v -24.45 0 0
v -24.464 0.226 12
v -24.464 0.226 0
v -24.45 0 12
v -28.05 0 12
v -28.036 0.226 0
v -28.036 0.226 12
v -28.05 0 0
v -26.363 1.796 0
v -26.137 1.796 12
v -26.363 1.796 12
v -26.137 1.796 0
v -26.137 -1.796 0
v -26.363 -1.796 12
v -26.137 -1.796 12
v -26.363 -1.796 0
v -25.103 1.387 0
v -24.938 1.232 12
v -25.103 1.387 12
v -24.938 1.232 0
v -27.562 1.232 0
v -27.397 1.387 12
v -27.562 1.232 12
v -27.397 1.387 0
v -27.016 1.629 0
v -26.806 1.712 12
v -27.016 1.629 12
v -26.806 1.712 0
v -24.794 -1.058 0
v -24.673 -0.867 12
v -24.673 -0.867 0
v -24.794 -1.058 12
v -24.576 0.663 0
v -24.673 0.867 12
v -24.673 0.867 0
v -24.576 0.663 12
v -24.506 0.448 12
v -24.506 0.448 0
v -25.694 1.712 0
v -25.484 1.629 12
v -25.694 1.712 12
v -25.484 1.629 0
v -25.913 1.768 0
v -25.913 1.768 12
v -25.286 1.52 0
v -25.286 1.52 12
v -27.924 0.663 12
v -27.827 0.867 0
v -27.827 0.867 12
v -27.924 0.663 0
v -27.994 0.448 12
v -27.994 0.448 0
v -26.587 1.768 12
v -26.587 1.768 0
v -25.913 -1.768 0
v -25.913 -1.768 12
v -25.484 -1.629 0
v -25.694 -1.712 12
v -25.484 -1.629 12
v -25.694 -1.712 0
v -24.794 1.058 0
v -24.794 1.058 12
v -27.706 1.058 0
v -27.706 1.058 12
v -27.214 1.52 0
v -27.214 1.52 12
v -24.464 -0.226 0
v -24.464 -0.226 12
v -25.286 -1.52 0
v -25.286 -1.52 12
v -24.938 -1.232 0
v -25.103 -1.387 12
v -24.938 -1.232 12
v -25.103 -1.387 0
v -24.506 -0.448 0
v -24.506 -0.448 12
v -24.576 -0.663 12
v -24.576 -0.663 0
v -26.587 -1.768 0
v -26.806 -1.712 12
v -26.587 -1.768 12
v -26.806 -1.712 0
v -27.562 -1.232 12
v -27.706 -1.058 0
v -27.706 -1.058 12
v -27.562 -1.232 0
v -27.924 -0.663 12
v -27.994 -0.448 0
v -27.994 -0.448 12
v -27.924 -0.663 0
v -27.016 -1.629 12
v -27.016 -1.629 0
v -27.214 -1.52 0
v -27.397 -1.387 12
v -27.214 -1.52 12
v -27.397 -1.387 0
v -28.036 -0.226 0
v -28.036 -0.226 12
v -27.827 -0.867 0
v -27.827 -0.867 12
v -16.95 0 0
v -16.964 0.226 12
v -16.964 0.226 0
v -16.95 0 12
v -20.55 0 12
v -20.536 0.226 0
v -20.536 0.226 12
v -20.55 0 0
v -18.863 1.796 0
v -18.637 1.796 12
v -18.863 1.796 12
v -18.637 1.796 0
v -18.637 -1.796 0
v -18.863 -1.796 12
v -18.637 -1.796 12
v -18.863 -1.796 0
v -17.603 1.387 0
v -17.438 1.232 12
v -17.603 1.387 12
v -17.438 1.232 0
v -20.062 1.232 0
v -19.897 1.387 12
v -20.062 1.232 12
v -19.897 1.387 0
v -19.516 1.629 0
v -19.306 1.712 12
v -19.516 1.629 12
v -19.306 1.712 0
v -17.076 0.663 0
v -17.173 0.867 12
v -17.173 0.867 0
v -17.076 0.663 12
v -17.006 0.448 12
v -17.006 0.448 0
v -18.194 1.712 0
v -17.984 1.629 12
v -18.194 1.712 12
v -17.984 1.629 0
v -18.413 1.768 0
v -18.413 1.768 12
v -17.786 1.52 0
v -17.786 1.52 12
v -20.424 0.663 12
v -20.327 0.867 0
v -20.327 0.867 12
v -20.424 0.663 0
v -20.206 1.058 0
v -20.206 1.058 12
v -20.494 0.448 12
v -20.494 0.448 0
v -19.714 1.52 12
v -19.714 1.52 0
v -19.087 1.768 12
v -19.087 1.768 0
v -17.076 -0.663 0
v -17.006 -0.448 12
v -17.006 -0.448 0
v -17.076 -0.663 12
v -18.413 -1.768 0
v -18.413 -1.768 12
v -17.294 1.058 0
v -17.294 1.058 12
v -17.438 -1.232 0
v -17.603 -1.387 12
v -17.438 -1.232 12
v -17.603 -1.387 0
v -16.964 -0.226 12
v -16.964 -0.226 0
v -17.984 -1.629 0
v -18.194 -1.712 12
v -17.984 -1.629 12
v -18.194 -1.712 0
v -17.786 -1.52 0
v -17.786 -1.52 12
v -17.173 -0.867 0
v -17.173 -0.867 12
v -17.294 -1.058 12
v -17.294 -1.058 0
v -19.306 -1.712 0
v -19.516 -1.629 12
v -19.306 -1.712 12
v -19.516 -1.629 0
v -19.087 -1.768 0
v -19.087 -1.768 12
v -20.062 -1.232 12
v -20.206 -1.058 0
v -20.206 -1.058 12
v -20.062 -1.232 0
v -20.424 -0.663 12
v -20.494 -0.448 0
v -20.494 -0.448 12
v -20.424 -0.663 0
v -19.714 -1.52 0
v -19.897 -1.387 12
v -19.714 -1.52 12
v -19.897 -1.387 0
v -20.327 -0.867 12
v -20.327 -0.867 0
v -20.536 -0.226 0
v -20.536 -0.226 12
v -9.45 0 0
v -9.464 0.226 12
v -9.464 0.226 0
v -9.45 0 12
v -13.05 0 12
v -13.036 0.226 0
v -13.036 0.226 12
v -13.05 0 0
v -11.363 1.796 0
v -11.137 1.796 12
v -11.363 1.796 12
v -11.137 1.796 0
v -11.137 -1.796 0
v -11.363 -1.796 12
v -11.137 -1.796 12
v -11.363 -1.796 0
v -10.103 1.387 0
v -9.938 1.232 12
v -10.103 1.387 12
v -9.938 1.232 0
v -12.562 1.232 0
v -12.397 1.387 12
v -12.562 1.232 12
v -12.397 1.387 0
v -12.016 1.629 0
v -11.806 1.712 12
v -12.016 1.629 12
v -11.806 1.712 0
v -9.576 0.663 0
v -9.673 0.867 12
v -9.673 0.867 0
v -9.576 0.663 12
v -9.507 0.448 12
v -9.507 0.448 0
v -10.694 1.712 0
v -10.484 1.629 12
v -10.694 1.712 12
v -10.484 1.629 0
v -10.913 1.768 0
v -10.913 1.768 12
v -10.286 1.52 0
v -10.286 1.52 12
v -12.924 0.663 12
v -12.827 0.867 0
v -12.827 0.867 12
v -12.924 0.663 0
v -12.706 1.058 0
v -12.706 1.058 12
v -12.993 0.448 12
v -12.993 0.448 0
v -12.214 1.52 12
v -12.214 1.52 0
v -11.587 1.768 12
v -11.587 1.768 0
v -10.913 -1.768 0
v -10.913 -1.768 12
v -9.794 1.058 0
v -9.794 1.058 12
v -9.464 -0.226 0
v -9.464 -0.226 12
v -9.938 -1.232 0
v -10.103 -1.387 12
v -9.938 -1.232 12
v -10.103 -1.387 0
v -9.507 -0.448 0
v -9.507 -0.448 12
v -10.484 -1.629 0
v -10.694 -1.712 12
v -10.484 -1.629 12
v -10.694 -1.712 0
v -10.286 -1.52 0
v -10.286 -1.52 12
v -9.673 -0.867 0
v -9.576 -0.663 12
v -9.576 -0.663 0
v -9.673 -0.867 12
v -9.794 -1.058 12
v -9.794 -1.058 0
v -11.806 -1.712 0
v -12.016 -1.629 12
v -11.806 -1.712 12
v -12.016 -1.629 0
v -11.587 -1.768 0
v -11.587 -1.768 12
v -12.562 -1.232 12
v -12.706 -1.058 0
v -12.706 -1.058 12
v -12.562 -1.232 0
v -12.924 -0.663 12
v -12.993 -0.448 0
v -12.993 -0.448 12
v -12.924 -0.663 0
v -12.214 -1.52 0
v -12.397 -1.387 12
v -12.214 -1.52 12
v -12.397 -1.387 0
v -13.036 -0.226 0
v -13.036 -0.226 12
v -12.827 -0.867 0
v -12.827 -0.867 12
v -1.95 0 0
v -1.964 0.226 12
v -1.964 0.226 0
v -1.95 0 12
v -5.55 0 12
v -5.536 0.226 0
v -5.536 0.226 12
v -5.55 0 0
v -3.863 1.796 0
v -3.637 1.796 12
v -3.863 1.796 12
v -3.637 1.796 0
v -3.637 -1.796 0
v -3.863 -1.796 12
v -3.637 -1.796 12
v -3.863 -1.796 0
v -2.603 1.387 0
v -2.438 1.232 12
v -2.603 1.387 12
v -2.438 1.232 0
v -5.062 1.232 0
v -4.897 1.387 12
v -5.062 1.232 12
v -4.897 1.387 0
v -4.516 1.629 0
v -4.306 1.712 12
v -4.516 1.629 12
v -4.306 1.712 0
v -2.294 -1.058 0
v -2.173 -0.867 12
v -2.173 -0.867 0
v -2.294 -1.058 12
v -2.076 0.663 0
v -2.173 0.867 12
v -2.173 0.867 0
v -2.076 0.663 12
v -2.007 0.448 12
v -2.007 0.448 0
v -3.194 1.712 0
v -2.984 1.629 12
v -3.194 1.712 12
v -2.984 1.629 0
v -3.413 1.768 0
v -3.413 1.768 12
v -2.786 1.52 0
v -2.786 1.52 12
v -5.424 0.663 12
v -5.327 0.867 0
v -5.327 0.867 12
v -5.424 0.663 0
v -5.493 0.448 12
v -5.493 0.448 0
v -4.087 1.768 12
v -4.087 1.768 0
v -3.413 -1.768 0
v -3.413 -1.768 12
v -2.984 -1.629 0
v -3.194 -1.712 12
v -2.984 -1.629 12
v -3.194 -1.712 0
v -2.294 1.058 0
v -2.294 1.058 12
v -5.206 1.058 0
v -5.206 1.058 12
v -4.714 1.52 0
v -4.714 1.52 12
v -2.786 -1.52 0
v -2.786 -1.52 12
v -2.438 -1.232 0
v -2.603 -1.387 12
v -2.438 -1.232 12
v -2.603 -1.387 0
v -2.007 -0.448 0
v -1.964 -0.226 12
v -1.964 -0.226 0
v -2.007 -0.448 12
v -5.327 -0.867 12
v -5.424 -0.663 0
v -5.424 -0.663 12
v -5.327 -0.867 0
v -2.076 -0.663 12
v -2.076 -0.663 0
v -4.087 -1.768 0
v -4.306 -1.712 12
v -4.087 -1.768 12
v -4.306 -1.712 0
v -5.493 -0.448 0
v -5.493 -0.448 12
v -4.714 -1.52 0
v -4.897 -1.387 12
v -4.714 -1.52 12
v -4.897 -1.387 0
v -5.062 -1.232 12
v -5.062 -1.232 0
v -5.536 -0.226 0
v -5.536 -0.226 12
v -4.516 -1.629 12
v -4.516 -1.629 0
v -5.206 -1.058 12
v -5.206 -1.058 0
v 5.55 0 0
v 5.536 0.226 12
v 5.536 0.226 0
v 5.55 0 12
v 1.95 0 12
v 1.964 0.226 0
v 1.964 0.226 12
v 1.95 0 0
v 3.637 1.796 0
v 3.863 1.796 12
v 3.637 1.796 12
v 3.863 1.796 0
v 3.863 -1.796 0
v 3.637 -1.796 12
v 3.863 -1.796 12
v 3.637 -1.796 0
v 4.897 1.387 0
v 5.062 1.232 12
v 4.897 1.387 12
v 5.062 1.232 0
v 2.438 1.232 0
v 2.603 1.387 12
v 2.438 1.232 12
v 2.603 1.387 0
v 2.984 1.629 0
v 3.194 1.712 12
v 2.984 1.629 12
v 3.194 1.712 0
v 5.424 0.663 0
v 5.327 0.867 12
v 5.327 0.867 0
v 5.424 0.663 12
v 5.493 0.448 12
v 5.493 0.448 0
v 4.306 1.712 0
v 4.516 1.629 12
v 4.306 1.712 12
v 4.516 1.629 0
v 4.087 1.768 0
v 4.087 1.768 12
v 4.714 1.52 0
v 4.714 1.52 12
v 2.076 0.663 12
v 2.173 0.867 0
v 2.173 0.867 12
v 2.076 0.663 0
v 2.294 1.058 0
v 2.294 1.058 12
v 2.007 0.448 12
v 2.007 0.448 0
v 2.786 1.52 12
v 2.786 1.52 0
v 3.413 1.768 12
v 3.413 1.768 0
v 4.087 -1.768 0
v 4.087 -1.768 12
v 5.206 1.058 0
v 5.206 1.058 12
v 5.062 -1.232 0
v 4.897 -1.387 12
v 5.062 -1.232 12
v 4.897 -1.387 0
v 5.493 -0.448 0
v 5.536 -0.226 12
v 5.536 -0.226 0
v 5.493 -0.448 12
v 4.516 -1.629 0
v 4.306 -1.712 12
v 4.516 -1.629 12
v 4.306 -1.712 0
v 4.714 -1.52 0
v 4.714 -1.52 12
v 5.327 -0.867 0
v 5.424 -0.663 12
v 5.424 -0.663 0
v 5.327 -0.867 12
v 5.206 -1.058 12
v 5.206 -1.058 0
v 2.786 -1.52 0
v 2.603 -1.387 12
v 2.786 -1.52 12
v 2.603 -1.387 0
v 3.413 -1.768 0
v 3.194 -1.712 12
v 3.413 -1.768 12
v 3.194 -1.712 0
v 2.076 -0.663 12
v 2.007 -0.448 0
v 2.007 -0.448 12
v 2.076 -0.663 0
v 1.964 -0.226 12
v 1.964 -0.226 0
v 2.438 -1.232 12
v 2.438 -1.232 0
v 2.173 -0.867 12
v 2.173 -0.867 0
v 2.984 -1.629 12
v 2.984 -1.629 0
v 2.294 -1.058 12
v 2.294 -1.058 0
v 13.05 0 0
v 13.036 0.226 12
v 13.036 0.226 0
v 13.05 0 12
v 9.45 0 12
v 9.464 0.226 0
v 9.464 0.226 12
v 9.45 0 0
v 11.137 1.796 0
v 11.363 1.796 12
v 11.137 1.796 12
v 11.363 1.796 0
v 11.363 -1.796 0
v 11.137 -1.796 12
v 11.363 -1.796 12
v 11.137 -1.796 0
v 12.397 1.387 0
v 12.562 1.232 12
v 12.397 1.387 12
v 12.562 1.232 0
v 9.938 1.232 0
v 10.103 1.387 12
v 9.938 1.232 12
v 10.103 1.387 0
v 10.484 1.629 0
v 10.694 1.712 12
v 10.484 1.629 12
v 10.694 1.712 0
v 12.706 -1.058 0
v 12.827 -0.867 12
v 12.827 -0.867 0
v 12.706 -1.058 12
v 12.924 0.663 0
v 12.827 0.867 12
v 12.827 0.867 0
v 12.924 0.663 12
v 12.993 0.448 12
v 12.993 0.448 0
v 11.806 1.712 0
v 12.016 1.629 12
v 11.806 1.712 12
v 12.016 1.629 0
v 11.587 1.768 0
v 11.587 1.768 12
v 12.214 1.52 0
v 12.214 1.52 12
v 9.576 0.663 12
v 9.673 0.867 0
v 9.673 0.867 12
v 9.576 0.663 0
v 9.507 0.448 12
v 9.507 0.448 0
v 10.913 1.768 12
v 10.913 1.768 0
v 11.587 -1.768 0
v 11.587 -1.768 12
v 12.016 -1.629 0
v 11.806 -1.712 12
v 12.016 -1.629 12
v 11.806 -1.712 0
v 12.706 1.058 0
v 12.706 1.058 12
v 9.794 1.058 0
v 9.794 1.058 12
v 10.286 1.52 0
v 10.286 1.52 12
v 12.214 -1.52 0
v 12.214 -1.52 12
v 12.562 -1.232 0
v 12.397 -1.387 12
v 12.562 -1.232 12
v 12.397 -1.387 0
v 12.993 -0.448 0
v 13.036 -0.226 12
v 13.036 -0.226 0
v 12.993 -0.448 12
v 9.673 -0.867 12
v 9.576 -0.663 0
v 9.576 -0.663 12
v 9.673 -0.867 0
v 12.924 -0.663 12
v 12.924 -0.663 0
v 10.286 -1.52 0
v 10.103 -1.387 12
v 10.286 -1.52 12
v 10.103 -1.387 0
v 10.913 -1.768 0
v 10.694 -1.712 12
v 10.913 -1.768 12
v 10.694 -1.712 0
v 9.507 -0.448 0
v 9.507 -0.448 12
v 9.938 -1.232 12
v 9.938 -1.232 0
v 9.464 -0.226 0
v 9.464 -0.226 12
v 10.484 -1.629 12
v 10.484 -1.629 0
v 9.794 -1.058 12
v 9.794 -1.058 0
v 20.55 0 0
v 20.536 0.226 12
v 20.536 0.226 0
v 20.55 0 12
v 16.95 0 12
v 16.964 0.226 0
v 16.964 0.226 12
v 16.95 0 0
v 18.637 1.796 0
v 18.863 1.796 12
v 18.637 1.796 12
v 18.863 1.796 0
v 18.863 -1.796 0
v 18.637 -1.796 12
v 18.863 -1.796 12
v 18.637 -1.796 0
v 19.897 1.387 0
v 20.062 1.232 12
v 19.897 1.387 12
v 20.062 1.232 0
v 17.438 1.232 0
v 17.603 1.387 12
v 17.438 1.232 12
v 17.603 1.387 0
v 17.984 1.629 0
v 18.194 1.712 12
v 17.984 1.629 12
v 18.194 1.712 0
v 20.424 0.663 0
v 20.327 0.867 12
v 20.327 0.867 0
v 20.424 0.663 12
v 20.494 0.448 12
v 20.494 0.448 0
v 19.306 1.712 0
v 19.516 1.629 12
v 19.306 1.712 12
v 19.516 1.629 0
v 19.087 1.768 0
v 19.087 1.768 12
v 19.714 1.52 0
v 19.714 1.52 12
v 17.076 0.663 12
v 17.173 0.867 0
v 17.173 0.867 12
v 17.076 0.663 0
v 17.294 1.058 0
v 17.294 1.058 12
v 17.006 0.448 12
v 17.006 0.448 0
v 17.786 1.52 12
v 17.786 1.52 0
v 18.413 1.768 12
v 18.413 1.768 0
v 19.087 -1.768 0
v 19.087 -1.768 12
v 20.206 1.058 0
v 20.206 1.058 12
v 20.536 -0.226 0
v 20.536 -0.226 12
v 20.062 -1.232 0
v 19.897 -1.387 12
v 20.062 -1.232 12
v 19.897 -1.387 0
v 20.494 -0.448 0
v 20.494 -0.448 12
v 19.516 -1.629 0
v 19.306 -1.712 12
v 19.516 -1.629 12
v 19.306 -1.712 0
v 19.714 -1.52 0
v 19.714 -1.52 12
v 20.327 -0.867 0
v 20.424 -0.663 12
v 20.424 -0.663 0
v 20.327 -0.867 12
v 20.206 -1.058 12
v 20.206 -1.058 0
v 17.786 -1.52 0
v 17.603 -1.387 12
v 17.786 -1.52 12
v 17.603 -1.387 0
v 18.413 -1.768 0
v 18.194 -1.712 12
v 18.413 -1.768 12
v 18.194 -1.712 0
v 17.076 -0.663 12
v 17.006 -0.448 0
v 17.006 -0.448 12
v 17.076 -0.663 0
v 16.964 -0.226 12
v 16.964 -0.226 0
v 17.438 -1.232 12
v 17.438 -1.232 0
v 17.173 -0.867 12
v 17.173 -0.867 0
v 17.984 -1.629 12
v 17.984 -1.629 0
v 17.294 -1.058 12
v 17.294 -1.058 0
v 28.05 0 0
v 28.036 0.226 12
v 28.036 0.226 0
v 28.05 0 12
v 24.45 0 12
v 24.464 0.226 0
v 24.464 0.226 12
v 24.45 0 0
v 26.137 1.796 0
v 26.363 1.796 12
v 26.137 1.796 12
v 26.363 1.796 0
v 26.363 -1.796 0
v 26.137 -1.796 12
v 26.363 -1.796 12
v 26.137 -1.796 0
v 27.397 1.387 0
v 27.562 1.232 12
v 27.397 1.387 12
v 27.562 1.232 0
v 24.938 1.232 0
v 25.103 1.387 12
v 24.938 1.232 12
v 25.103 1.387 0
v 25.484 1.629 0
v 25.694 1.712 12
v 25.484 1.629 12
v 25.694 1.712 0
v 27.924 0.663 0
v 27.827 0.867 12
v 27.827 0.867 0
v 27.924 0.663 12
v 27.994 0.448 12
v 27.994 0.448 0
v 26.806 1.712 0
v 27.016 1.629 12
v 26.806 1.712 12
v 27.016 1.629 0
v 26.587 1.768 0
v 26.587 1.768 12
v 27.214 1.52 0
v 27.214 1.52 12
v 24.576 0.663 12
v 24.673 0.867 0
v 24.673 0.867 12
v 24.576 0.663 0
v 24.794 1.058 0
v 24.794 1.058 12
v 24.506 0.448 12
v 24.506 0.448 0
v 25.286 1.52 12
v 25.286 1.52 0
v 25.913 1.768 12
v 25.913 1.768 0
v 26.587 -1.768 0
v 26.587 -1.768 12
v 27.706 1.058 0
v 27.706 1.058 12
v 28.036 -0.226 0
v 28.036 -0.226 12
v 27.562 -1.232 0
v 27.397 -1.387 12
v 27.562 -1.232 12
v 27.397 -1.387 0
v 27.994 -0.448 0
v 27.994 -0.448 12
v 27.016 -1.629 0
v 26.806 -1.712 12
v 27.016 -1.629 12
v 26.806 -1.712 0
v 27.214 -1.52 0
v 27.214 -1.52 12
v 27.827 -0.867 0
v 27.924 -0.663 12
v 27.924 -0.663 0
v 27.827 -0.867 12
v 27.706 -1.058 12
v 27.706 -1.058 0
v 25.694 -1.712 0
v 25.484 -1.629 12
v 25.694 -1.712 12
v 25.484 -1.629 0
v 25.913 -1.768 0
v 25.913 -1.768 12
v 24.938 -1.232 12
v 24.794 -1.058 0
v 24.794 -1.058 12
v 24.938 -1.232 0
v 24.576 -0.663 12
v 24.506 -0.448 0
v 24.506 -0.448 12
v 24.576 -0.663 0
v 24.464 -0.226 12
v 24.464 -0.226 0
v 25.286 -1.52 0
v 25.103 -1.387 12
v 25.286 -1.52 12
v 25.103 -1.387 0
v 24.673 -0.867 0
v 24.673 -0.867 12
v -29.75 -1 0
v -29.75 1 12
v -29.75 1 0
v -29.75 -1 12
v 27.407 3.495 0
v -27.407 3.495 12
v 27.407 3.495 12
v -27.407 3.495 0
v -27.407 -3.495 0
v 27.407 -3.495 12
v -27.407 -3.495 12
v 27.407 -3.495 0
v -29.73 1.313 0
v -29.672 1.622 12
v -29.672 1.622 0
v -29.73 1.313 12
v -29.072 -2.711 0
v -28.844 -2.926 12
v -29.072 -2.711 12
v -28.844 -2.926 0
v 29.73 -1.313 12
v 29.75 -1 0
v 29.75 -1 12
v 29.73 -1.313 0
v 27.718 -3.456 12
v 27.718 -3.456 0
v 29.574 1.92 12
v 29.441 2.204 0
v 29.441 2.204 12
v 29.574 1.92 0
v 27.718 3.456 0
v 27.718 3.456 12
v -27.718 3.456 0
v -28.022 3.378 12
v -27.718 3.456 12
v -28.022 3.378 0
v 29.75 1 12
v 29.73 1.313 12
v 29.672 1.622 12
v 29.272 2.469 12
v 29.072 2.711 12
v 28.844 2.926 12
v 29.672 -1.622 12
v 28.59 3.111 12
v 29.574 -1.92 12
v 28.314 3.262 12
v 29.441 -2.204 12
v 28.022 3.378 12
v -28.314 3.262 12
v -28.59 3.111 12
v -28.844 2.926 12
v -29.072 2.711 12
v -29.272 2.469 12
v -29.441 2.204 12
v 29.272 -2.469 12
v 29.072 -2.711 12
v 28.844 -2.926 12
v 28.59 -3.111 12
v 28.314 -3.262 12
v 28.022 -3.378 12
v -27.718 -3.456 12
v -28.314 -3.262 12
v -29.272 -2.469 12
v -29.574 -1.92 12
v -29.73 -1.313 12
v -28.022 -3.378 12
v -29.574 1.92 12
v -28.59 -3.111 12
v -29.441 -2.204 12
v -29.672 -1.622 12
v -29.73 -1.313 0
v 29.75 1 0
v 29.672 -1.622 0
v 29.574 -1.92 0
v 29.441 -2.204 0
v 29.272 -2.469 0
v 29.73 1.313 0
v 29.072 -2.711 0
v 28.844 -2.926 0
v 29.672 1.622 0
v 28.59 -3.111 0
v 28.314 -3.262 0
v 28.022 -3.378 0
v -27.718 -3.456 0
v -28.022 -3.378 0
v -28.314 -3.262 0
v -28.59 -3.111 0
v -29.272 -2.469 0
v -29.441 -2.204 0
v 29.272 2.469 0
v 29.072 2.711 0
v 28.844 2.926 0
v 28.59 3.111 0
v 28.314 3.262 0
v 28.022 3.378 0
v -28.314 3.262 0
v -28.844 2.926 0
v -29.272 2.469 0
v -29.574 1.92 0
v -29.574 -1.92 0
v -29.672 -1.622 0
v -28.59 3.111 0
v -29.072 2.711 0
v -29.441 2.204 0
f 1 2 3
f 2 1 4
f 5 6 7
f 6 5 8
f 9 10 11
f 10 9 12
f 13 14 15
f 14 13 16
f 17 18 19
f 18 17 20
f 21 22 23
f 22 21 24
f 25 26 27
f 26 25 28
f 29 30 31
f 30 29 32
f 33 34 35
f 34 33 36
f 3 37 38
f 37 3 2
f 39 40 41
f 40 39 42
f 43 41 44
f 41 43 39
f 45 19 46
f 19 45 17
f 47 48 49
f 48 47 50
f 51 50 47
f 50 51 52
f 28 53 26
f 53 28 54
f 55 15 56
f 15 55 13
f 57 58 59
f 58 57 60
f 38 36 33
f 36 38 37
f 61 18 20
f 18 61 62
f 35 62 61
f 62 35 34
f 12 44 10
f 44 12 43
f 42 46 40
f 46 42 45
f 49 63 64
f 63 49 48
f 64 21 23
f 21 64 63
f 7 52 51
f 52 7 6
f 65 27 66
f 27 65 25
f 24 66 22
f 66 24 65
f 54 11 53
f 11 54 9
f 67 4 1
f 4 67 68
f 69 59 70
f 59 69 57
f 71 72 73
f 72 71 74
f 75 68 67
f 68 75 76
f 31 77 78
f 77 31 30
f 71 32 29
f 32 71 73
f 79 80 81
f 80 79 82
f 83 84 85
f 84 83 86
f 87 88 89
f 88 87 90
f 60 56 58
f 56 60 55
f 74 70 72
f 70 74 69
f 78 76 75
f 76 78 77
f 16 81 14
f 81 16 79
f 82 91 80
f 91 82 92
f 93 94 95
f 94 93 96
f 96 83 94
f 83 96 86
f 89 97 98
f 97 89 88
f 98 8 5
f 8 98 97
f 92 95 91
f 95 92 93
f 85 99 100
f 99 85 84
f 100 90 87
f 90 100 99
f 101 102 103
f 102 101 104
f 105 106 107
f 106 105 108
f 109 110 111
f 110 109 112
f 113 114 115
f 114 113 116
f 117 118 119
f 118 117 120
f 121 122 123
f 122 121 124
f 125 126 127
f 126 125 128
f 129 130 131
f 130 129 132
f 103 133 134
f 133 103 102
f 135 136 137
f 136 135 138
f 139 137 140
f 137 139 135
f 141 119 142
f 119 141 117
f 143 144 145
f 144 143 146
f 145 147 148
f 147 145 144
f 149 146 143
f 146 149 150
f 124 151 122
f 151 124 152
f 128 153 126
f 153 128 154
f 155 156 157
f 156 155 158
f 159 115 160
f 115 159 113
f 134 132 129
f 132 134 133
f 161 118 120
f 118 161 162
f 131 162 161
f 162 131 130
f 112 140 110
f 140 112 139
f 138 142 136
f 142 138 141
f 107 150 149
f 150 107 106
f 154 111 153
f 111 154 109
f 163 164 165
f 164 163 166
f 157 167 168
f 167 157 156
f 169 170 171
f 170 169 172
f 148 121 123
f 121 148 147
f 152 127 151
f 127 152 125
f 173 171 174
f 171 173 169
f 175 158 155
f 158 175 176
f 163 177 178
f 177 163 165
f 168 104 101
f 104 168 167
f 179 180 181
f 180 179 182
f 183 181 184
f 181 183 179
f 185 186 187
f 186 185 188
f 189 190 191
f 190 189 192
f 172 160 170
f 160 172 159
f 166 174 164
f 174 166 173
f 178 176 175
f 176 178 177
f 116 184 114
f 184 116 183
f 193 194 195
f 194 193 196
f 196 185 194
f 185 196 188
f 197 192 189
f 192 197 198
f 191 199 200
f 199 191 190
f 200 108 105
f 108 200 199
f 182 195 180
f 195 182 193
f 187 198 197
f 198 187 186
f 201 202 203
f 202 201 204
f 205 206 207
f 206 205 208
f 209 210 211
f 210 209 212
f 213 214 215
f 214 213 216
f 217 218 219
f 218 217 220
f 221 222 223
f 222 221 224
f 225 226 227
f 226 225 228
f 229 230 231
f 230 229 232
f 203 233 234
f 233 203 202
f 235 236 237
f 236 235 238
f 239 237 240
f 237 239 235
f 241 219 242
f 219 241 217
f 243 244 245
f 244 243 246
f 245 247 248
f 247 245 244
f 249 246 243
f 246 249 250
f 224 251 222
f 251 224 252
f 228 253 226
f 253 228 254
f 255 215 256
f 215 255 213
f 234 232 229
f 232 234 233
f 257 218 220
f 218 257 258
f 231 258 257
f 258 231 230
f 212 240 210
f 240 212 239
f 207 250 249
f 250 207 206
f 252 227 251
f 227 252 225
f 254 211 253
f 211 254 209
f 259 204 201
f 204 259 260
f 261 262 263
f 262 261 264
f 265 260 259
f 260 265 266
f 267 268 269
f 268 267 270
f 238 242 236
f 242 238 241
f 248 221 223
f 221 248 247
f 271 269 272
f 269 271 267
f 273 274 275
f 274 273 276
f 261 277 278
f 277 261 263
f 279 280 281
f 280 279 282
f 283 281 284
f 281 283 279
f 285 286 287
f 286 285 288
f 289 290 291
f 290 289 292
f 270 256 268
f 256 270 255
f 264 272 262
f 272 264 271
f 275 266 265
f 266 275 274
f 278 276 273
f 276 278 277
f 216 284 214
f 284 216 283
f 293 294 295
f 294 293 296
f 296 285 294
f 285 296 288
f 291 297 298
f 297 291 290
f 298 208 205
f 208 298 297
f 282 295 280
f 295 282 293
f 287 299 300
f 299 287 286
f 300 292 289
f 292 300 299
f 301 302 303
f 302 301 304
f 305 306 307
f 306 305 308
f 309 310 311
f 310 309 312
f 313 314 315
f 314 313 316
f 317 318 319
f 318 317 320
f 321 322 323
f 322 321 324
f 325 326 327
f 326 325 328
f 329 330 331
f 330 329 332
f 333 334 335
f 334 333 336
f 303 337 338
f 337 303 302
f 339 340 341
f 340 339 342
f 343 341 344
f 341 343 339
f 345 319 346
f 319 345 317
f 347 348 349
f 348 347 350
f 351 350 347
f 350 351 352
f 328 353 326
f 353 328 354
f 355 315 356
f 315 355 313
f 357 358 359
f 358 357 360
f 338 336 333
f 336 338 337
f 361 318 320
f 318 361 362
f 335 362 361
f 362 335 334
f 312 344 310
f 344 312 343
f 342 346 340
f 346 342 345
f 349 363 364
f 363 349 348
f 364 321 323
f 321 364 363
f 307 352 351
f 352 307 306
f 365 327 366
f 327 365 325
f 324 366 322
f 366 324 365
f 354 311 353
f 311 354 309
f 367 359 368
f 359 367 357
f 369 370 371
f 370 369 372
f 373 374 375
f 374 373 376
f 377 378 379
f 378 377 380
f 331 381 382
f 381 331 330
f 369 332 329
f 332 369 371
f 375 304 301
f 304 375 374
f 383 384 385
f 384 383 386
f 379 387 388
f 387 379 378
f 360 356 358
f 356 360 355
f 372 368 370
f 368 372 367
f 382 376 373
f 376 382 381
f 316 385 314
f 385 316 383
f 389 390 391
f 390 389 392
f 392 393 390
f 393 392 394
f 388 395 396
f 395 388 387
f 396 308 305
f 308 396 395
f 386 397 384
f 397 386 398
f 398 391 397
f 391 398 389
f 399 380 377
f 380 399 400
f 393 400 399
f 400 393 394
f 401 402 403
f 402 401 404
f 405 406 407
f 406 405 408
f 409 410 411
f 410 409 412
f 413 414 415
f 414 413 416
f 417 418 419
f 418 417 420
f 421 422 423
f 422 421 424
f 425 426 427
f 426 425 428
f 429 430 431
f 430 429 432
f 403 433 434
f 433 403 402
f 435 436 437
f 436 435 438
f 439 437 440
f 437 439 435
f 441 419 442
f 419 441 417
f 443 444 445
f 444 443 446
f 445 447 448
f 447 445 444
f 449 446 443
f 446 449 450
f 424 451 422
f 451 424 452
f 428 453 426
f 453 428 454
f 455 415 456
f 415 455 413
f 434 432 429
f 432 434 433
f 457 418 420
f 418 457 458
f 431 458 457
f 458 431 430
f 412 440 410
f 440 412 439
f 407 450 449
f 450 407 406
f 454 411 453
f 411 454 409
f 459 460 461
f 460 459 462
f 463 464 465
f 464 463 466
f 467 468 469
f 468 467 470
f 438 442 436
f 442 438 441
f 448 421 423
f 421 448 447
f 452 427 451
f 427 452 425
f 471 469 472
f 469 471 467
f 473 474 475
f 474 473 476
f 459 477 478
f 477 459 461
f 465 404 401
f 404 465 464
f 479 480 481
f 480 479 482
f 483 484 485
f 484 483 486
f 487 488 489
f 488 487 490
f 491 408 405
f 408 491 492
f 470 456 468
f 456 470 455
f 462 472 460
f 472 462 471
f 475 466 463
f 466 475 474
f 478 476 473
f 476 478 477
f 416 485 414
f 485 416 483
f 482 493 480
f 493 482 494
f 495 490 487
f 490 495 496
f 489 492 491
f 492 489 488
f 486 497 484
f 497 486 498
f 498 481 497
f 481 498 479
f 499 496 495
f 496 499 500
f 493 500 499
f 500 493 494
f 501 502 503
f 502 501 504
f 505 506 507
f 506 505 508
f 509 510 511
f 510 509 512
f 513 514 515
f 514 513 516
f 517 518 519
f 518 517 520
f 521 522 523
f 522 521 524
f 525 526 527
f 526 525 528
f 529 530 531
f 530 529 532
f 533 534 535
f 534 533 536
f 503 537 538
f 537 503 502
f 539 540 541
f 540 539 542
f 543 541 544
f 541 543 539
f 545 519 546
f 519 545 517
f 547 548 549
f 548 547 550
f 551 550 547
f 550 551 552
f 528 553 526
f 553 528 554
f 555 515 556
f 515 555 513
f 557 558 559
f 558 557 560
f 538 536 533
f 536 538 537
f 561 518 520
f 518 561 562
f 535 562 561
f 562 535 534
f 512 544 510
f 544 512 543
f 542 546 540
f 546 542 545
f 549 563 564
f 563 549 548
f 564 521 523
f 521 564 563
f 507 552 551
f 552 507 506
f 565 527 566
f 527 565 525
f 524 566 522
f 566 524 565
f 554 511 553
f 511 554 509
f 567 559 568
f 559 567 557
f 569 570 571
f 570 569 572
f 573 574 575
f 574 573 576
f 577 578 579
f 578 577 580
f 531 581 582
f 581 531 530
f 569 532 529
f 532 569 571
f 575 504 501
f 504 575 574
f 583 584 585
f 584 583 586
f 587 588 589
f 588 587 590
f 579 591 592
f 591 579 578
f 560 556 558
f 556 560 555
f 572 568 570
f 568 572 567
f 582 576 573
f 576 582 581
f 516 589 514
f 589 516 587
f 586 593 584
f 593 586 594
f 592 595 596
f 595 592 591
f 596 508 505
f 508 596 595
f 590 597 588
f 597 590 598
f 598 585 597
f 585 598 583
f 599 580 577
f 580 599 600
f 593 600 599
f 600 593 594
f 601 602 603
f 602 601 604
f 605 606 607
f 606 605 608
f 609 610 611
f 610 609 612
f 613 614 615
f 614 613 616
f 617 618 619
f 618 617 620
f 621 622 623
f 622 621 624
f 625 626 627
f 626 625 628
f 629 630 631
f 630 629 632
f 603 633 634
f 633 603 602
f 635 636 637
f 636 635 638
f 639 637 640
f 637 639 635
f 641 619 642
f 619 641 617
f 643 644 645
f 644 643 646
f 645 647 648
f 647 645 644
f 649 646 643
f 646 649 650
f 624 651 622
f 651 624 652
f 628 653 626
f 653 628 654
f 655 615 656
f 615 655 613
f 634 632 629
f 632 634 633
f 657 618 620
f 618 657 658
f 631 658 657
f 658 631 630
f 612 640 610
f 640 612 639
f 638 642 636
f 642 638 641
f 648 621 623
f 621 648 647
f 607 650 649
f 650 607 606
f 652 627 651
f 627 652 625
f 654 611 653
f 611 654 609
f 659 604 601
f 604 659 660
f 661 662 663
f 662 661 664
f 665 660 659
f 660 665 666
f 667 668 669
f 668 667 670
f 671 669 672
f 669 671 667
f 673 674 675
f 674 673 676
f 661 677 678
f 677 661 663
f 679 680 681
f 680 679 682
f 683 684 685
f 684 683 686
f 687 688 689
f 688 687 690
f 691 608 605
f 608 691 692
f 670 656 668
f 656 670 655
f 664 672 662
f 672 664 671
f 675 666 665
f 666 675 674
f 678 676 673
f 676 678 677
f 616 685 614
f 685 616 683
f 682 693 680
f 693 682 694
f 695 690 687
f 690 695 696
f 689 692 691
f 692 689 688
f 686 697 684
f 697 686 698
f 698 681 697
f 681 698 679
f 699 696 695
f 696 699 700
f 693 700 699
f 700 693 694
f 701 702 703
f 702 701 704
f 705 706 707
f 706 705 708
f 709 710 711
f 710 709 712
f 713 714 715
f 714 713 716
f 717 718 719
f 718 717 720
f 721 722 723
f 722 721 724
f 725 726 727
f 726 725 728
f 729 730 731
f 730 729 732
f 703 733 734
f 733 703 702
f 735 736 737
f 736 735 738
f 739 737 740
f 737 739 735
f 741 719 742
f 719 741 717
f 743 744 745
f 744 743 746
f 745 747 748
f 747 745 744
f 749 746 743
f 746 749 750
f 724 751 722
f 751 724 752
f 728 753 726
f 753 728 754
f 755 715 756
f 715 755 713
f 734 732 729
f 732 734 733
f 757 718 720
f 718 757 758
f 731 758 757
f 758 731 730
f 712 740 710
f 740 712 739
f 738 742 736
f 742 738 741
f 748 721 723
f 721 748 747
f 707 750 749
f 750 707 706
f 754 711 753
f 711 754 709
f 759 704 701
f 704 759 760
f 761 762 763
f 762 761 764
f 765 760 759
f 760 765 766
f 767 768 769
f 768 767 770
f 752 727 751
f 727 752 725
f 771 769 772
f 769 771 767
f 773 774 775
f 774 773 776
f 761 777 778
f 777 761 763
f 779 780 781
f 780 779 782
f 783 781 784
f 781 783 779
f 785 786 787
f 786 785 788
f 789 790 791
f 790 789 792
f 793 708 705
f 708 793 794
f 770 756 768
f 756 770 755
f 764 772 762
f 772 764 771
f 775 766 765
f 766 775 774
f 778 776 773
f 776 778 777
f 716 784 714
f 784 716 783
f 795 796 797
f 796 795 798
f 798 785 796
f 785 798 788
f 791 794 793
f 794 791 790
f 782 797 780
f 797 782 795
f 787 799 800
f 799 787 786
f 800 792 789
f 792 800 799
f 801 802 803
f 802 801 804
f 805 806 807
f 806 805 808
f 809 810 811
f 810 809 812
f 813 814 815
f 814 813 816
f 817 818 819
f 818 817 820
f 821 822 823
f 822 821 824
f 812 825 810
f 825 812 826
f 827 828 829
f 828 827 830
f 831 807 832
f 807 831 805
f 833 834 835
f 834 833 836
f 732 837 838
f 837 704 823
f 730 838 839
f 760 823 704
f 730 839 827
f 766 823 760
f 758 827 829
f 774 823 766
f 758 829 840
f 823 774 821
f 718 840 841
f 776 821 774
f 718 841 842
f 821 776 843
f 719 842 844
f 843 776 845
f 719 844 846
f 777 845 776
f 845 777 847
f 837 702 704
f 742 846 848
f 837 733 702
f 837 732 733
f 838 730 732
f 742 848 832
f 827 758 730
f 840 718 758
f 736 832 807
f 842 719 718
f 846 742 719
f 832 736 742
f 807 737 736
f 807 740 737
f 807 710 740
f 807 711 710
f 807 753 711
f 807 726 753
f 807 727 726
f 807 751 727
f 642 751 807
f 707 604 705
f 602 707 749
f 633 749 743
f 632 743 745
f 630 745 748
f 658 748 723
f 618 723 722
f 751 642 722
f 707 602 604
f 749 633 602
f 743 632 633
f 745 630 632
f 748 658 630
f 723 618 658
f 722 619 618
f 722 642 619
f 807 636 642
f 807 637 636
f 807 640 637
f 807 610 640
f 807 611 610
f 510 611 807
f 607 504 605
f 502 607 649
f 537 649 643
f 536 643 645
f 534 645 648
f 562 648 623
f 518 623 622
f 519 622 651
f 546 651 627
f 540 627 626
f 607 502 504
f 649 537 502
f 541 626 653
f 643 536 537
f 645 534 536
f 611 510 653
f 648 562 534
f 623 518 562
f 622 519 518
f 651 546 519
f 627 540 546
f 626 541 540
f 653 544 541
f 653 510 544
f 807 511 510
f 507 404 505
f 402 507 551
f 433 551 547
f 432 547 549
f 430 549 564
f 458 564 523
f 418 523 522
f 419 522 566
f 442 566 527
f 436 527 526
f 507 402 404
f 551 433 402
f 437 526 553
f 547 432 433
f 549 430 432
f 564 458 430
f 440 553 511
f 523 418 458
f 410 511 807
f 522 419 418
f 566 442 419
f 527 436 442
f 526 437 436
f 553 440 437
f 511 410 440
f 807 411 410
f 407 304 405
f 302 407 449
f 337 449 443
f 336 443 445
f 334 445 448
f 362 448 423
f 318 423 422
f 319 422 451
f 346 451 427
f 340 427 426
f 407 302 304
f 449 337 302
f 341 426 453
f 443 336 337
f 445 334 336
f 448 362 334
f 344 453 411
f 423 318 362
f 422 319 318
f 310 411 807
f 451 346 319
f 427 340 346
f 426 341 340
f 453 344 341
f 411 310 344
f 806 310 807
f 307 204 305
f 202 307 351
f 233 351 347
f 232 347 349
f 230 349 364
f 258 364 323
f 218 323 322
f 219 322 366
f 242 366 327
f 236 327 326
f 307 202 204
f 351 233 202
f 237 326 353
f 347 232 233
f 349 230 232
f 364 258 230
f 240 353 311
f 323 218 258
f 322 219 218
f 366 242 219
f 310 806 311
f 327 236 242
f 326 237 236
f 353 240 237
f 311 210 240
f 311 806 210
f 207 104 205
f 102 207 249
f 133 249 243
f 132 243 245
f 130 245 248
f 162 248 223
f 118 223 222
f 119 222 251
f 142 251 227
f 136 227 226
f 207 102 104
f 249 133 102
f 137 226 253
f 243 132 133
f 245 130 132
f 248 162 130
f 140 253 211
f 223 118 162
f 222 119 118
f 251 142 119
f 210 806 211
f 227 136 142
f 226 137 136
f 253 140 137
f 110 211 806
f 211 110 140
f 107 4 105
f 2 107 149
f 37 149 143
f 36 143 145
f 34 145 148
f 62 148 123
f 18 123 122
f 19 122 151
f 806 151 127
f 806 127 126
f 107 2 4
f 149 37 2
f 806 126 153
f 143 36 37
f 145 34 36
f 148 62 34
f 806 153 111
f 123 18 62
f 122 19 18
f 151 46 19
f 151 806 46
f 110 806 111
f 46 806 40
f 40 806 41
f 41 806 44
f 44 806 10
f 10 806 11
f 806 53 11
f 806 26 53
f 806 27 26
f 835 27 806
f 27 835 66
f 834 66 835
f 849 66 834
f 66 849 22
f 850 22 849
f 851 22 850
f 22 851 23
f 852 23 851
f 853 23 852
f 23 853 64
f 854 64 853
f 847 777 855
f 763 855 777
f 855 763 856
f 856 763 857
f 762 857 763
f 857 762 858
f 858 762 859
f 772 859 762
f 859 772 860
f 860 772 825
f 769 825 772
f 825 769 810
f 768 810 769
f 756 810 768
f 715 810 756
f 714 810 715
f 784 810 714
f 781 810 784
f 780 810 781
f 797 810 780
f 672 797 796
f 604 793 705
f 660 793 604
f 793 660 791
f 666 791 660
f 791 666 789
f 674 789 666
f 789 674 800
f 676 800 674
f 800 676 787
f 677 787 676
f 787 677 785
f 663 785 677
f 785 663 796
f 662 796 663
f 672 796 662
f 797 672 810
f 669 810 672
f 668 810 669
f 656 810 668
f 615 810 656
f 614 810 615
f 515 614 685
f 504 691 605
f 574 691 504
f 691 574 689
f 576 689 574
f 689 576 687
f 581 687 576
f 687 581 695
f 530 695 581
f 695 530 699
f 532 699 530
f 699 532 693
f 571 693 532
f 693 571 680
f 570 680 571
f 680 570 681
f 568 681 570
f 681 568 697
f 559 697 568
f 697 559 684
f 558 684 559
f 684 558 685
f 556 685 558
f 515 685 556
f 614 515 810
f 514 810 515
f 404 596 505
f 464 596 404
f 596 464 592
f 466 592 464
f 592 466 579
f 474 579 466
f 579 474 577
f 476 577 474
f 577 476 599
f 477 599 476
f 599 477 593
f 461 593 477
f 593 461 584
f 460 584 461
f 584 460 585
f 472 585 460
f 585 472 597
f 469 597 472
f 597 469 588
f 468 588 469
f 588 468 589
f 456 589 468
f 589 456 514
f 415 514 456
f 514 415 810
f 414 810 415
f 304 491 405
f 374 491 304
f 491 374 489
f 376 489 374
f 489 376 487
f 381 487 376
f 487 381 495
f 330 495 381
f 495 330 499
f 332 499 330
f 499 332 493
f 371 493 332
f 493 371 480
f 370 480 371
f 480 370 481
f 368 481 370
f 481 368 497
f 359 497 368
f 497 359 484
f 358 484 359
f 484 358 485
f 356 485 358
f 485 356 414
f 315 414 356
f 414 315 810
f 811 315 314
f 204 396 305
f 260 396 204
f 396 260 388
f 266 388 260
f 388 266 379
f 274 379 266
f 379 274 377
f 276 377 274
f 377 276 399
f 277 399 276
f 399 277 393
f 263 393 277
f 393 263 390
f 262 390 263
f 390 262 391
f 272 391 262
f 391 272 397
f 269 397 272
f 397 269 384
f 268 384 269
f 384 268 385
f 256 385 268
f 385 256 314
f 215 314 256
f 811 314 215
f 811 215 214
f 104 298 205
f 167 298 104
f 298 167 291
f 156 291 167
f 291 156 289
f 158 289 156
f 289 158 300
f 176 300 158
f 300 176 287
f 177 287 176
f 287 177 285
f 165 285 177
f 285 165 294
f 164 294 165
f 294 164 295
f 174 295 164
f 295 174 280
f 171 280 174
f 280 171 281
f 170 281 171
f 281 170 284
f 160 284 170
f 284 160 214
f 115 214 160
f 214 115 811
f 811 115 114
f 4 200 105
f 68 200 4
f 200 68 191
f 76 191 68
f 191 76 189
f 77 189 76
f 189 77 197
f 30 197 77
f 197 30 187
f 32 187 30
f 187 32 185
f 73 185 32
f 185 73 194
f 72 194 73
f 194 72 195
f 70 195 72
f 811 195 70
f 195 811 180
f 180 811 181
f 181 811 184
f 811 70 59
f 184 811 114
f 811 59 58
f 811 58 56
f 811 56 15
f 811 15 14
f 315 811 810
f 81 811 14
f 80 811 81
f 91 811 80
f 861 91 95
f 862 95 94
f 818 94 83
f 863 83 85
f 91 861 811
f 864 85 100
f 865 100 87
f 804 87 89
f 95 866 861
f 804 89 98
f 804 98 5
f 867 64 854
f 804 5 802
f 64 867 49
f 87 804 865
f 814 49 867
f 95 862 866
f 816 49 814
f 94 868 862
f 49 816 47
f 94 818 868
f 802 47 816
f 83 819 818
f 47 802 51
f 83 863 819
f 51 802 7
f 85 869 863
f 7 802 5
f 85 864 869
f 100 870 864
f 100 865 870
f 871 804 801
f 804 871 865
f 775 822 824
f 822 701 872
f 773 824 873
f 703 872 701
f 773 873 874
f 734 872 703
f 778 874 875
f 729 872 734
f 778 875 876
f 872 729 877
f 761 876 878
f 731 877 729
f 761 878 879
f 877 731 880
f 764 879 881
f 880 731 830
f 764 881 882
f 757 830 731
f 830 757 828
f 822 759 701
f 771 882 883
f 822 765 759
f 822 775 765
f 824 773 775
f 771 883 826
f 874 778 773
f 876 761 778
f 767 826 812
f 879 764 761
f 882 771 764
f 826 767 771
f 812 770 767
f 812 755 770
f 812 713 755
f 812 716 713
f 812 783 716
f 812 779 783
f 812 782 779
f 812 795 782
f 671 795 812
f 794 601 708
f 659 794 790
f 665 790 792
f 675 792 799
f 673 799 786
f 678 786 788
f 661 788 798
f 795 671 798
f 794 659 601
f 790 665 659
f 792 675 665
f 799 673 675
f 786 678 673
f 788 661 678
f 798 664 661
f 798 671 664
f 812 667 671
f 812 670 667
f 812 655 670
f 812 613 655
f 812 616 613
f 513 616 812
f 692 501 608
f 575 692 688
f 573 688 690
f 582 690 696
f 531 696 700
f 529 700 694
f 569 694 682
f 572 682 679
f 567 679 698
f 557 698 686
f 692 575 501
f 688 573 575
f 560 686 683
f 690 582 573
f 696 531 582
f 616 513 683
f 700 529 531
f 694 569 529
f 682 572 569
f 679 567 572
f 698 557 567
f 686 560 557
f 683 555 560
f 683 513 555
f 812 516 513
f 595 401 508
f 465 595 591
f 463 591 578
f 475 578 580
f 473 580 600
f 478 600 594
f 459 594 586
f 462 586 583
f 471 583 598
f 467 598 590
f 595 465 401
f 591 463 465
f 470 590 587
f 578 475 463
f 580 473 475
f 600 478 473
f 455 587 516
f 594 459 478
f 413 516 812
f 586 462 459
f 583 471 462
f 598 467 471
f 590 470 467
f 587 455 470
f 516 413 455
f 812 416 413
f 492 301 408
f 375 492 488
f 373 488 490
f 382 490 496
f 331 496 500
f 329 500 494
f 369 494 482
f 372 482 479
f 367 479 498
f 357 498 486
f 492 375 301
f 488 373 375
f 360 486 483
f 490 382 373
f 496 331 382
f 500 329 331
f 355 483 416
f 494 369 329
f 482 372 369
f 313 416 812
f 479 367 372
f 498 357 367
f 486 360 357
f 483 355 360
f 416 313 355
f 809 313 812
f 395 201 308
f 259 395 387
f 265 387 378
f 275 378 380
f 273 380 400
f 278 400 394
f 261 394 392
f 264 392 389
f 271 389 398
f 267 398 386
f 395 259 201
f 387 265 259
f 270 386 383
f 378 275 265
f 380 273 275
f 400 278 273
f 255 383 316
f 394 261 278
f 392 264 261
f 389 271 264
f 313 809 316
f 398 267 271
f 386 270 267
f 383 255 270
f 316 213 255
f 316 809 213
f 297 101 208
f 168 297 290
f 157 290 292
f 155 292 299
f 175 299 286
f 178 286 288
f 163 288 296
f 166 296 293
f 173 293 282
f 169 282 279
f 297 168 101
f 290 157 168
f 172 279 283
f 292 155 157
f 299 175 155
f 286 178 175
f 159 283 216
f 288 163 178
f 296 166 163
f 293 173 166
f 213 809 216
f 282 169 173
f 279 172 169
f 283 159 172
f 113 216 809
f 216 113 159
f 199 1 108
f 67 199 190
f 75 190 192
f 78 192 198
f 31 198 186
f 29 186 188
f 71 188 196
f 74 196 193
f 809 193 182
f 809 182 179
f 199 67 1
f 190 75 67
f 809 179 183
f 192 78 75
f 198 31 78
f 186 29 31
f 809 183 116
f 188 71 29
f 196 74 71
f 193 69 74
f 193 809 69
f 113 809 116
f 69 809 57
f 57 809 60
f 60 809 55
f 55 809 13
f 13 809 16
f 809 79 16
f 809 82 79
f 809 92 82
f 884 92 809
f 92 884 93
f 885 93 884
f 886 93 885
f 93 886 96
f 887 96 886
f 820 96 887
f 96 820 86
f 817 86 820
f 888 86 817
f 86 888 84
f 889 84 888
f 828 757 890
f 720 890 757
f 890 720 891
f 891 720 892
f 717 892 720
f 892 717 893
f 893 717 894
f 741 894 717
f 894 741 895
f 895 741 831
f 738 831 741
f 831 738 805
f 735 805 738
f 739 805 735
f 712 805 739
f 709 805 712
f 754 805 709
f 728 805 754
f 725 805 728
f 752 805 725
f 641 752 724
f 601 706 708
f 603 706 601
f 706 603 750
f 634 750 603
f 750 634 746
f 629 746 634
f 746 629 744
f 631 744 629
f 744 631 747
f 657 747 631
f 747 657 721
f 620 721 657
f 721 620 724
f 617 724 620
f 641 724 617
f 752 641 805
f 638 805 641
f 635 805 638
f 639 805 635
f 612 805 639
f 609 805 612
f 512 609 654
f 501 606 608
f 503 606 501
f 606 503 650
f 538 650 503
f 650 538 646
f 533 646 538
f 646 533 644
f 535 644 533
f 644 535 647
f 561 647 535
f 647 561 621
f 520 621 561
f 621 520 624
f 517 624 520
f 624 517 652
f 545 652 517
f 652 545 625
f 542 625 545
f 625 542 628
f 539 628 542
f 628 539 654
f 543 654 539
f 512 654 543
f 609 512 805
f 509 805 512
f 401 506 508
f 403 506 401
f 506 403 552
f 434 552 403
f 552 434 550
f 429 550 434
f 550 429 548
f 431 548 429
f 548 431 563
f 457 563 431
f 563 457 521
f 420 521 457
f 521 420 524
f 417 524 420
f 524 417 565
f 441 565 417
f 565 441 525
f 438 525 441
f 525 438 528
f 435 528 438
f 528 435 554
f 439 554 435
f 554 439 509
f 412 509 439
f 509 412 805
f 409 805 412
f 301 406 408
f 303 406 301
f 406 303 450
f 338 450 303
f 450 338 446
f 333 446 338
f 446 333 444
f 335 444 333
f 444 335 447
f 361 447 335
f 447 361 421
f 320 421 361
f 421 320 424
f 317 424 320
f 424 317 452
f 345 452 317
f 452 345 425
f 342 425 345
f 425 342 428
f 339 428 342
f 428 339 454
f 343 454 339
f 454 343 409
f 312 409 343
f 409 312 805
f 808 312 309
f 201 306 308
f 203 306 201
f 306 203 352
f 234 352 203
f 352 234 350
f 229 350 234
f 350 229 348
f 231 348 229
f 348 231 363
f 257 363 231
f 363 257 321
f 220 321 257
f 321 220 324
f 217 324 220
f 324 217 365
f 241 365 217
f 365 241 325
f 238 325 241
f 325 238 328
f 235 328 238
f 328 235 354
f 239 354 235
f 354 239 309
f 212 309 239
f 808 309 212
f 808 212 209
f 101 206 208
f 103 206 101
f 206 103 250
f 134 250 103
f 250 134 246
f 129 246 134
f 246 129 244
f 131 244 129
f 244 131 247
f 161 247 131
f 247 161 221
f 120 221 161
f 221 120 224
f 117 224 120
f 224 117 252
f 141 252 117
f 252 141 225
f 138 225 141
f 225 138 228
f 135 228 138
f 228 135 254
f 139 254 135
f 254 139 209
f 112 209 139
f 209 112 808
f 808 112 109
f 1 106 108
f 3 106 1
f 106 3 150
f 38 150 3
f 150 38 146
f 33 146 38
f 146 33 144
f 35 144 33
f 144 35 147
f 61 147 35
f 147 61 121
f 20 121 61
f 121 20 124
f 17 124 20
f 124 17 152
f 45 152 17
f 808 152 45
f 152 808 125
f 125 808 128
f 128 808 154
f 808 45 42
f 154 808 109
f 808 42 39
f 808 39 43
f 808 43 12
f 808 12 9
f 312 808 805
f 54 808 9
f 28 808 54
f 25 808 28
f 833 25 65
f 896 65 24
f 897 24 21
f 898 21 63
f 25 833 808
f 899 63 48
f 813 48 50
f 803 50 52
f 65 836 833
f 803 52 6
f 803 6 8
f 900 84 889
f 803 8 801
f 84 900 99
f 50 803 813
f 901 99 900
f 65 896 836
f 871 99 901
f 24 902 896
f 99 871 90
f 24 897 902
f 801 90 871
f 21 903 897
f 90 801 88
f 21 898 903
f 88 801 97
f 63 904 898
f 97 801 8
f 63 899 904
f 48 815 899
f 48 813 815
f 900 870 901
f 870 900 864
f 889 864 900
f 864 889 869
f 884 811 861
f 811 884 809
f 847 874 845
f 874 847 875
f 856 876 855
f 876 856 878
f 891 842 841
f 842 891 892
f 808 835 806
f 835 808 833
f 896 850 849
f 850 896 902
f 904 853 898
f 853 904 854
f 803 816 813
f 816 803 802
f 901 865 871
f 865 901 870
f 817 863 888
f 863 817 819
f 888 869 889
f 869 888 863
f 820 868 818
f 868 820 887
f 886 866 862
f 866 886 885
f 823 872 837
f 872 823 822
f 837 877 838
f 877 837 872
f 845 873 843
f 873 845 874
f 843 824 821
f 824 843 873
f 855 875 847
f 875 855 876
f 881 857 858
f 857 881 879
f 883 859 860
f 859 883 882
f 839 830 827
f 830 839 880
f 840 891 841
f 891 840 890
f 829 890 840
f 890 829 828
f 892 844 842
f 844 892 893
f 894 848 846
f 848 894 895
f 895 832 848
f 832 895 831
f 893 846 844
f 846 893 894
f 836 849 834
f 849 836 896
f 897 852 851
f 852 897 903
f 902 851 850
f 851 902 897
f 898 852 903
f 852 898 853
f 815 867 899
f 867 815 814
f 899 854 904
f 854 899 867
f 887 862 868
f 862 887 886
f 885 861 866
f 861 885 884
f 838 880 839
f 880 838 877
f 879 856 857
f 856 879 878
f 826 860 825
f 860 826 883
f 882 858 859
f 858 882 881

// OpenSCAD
$fn = 50;


difference() {
	union() {
		translate(v = [0, 0, 0]) {
			rotate(a = [0, 0, 0]) {
				hull() {
					translate(v = [-27.2500000000, 1.0000000000, 0]) {
						rotate(a = [0, 0, 0]) {
							translate(v = [0, 0, 0]) {
								rotate(a = [0, 0, 0]) {
									cylinder(h = 12, r = 2.5000000000);
								}
							}
						}
					}
					translate(v = [27.2500000000, 1.0000000000, 0]) {
						rotate(a = [0, 0, 0]) {
							translate(v = [0, 0, 0]) {
								rotate(a = [0, 0, 0]) {
									cylinder(h = 12, r = 2.5000000000);
								}
							}
						}
					}
					translate(v = [-27.2500000000, -1.0000000000, 0]) {
						rotate(a = [0, 0, 0]) {
							translate(v = [0, 0, 0]) {
								rotate(a = [0, 0, 0]) {
									cylinder(h = 12, r = 2.5000000000);
								}
							}
						}
					}
					translate(v = [27.2500000000, -1.0000000000, 0]) {
						rotate(a = [0, 0, 0]) {
							translate(v = [0, 0, 0]) {
								rotate(a = [0, 0, 0]) {
									cylinder(h = 12, r = 2.5000000000);
								}
							}
						}
					}
				}
			}
		}
	}
	union() {
		translate(v = [-26.2500000000, 0.0000000000, 0]) {
			rotate(a = [0, 0, 0]) {
				translate(v = [0, 0, -50]) {
					rotate(a = [0, 0, 0]) {
						cylinder(h = 100, r = 1.8000000000);
					}
				}
			}
		}
		translate(v = [-18.7500000000, 0.0000000000, 0]) {
			rotate(a = [0, 0, 0]) {
				translate(v = [0, 0, -50]) {
					rotate(a = [0, 0, 0]) {
						cylinder(h = 100, r = 1.8000000000);
					}
				}
			}
		}
		translate(v = [-11.2500000000, 0.0000000000, 0]) {
			rotate(a = [0, 0, 0]) {
				translate(v = [0, 0, -50]) {
					rotate(a = [0, 0, 0]) {
						cylinder(h = 100, r = 1.8000000000);
					}
				}
			}
		}
		translate(v = [-3.7500000000, 0.0000000000, 0]) {
			rotate(a = [0, 0, 0]) {
				translate(v = [0, 0, -50]) {
					rotate(a = [0, 0, 0]) {
						cylinder(h = 100, r = 1.8000000000);
					}
				}
			}
		}
		translate(v = [3.7500000000, 0.0000000000, 0]) {
			rotate(a = [0, 0, 0]) {
				translate(v = [0, 0, -50]) {
					rotate(a = [0, 0, 0]) {
						cylinder(h = 100, r = 1.8000000000);
					}
				}
			}
		}
		translate(v = [11.2500000000, 0.0000000000, 0]) {
			rotate(a = [0, 0, 0]) {
				translate(v = [0, 0, -50]) {
					rotate(a = [0, 0, 0]) {
						cylinder(h = 100, r = 1.8000000000);
					}
				}
			}
		}
		translate(v = [18.7500000000, 0.0000000000, 0]) {
			rotate(a = [0, 0, 0]) {
				translate(v = [0, 0, -50]) {
					rotate(a = [0, 0, 0]) {
						cylinder(h = 100, r = 1.8000000000);
					}
				}
			}
		}
		translate(v = [26.2500000000, 0.0000000000, 0]) {
			rotate(a = [0, 0, 0]) {
				translate(v = [0, 0, -50]) {
					rotate(a = [0, 0, 0]) {
						cylinder(h = 100, r = 1.8000000000);
					}
				}
			}
		}
	}
}
